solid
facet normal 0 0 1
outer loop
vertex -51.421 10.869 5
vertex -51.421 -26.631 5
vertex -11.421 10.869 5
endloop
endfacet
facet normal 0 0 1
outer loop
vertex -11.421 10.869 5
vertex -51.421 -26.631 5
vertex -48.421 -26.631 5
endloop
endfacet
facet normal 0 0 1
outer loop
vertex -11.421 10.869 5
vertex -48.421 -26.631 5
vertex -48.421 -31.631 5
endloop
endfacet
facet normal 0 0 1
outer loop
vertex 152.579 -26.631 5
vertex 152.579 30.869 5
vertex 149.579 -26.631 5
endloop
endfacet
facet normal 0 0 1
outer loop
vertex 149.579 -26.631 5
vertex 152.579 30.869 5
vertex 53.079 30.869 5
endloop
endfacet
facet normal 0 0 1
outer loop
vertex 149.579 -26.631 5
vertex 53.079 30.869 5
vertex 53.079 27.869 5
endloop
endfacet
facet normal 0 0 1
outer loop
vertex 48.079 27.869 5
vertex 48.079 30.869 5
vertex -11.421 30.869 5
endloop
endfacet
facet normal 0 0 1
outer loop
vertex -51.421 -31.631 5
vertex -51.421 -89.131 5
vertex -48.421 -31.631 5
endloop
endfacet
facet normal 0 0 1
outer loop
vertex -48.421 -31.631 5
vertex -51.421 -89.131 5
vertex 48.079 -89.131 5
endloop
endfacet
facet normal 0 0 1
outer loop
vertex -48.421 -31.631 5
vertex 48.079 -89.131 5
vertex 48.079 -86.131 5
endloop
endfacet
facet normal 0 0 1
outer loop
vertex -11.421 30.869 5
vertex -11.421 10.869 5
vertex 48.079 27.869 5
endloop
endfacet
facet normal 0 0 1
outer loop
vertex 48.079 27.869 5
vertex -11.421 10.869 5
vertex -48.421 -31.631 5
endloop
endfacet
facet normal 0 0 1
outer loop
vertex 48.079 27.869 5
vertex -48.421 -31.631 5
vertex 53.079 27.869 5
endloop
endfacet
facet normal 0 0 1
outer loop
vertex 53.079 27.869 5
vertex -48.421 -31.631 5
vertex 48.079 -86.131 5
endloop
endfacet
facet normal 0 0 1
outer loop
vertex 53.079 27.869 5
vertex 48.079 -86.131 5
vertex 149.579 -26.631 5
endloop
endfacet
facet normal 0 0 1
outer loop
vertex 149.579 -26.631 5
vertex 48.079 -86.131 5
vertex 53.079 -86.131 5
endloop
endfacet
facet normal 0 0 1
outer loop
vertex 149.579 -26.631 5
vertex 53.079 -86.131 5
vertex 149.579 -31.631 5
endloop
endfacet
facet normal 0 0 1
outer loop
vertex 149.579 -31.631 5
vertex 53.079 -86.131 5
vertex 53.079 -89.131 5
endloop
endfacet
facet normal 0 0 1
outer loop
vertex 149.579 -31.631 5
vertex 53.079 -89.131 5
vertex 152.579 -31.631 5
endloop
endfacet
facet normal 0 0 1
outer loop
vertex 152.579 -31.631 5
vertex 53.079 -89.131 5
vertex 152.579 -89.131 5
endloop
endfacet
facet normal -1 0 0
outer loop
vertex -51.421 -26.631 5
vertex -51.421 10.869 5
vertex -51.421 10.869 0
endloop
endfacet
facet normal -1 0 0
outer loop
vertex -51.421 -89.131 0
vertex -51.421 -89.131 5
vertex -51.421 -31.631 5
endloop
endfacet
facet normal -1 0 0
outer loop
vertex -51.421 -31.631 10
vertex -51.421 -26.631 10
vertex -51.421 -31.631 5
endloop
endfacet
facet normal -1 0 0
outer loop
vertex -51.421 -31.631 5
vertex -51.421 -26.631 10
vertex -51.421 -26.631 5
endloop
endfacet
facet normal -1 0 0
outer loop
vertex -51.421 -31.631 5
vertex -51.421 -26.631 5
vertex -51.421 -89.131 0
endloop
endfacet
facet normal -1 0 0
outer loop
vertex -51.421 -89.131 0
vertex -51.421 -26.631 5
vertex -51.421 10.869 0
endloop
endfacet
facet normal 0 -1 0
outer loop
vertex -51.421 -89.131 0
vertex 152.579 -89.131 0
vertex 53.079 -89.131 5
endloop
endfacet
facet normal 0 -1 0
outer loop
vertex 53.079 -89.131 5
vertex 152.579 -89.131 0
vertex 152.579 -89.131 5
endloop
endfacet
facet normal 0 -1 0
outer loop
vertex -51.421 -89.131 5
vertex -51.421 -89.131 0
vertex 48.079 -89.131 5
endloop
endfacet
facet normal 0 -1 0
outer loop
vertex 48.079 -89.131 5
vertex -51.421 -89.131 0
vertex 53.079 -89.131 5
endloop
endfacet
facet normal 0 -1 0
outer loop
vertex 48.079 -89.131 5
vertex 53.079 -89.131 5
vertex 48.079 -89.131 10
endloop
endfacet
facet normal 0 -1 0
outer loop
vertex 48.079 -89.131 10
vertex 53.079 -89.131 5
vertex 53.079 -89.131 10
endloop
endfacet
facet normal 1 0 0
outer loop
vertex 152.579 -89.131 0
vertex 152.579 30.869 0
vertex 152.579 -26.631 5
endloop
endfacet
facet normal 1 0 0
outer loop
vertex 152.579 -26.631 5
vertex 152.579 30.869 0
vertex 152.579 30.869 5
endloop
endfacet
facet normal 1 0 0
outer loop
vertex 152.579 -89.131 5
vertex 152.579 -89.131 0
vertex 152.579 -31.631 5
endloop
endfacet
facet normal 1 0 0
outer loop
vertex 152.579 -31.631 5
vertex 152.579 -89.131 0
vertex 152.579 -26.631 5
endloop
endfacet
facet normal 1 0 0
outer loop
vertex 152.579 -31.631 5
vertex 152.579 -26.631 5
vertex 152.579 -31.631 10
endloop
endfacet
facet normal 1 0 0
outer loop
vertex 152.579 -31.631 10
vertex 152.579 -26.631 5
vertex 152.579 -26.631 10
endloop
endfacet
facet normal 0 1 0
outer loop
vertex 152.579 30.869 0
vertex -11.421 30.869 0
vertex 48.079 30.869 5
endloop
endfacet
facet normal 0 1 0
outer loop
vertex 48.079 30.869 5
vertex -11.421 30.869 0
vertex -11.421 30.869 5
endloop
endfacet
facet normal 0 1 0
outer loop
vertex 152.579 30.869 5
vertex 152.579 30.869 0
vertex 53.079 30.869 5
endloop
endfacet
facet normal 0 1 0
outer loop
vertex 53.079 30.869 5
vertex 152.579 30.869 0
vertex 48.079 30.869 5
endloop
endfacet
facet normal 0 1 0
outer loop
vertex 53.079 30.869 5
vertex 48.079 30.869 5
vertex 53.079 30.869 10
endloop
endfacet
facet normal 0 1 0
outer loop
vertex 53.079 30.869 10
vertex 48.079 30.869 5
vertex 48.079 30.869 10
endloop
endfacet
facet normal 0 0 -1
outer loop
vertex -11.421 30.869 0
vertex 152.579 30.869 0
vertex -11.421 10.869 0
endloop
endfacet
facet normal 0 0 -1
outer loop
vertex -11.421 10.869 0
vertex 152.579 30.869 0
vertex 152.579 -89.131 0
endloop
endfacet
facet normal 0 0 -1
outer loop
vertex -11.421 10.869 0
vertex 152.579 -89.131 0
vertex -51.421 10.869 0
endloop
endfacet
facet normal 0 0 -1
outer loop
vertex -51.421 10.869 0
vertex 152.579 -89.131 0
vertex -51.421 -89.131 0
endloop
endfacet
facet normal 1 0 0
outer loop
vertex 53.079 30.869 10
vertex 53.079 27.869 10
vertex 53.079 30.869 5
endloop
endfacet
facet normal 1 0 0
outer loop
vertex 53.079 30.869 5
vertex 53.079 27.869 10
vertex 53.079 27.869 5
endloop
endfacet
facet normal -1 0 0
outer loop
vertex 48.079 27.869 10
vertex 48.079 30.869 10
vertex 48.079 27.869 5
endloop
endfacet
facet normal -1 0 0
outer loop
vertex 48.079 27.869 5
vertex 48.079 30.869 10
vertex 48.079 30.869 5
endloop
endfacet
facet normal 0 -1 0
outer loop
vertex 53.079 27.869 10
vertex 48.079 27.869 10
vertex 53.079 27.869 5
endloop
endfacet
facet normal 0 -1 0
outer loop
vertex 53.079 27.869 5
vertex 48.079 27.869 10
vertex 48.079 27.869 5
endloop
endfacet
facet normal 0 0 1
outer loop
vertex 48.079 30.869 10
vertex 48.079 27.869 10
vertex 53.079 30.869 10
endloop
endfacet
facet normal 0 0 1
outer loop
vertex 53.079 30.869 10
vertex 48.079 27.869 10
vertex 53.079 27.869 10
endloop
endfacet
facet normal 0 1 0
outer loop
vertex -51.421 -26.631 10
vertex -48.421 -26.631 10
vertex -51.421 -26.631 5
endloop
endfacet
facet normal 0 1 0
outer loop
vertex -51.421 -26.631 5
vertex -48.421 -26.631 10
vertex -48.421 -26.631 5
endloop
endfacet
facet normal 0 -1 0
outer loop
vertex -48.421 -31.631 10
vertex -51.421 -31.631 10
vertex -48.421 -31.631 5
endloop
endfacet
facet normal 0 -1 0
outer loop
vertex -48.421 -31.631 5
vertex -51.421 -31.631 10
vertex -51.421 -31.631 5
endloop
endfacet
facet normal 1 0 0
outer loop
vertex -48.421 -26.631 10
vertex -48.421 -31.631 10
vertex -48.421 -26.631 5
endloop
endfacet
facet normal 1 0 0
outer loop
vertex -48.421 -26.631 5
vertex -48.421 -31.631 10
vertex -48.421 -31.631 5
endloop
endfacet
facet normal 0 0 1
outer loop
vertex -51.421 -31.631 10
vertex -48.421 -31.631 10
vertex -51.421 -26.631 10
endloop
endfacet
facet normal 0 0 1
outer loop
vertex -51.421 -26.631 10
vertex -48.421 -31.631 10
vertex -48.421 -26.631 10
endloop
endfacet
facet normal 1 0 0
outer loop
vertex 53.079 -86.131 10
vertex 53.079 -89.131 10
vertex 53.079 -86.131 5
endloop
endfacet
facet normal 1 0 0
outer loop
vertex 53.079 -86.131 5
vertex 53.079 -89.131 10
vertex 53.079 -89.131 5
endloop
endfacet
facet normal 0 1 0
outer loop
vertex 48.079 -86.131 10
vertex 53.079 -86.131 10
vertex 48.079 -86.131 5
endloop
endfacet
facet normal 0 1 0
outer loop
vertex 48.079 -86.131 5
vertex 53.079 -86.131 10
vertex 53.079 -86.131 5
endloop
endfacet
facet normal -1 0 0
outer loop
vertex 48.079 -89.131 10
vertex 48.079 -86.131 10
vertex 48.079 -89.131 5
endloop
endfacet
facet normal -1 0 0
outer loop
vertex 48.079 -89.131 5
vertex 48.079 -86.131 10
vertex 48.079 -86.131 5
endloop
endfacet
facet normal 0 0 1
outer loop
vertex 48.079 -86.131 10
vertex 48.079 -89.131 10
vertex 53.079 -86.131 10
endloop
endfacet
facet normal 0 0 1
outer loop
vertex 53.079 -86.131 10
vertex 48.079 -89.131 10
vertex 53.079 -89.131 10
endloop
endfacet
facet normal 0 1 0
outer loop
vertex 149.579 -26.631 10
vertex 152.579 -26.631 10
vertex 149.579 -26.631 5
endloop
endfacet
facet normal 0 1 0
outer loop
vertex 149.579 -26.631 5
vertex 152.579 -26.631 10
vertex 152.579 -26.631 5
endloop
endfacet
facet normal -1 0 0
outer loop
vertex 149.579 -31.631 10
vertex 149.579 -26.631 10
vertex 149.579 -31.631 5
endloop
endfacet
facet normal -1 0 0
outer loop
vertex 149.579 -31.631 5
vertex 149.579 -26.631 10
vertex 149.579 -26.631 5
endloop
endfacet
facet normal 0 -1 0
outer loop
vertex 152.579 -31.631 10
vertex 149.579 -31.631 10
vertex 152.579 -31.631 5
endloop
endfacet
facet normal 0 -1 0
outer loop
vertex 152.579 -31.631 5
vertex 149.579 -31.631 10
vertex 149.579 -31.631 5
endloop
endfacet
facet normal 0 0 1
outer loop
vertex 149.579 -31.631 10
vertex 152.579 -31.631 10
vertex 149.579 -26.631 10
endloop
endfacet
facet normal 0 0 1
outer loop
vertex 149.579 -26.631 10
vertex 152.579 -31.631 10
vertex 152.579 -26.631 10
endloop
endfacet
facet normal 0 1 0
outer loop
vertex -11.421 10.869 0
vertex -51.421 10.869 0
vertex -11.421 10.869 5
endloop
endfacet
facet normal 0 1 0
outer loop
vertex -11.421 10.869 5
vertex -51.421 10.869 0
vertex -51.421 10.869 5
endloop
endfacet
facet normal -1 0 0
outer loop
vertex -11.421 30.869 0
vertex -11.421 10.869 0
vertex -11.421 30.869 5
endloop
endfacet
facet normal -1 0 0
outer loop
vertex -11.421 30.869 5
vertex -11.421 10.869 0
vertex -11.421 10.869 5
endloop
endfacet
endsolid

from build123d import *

# Parameters (mm, degrees)
ESBO_O1_W                = 204
ESBO_O1_H                = 120
RESSALTO_EXTRUS_O1_DEPTH = 5
ESBO_O2_W                = 5
ESBO_O2_H                = 3
ESBO_O2_W_2              = 3
ESBO_O2_H_2              = 5
RESSALTO_EXTRUS_O2_DEPTH = 5
ESBO_O3_W                = 40
ESBO_O3_H                = 20
CORTE_EXTRUS_O1_DEPTH    = 10


with BuildPart() as part:
    # Esboço1 → Ressalto-extrusão1 (new body)
    with BuildSketch(Plane.XY):
        with Locations((50.579294312, -29.131049069)):
            Rectangle(ESBO_O1_W, ESBO_O1_H)
    extrude(amount=RESSALTO_EXTRUS_O1_DEPTH)

    # Esboço2 → Ressalto-extrusão2 (add)
    with BuildSketch(Plane.XY.offset(5)):
        with Locations((50.579294312, 29.368950931)):
            Rectangle(ESBO_O2_W, ESBO_O2_H)
        with Locations((50.579294312, -87.631049069)):
            Rectangle(ESBO_O2_W, ESBO_O2_H)
        with Locations((-49.920705688, -29.131049069)):
            Rectangle(ESBO_O2_W_2, ESBO_O2_H_2)
        with Locations((151.079294312, -29.131049069)):
            Rectangle(ESBO_O2_W_2, ESBO_O2_H_2)
    extrude(amount=RESSALTO_EXTRUS_O2_DEPTH)

    # Esboço3 → Corte-extrusão1 (cut)
    with BuildSketch(Plane(origin=(0, 0, 0), x_dir=(-1, 0, 0), z_dir=(0, 0, -1))):
        with Locations((31.420705688, 20.868950931)):
            Rectangle(ESBO_O3_W, ESBO_O3_H)
    extrude(amount=-CORTE_EXTRUS_O1_DEPTH, mode=Mode.SUBTRACT)


solid = part.part
